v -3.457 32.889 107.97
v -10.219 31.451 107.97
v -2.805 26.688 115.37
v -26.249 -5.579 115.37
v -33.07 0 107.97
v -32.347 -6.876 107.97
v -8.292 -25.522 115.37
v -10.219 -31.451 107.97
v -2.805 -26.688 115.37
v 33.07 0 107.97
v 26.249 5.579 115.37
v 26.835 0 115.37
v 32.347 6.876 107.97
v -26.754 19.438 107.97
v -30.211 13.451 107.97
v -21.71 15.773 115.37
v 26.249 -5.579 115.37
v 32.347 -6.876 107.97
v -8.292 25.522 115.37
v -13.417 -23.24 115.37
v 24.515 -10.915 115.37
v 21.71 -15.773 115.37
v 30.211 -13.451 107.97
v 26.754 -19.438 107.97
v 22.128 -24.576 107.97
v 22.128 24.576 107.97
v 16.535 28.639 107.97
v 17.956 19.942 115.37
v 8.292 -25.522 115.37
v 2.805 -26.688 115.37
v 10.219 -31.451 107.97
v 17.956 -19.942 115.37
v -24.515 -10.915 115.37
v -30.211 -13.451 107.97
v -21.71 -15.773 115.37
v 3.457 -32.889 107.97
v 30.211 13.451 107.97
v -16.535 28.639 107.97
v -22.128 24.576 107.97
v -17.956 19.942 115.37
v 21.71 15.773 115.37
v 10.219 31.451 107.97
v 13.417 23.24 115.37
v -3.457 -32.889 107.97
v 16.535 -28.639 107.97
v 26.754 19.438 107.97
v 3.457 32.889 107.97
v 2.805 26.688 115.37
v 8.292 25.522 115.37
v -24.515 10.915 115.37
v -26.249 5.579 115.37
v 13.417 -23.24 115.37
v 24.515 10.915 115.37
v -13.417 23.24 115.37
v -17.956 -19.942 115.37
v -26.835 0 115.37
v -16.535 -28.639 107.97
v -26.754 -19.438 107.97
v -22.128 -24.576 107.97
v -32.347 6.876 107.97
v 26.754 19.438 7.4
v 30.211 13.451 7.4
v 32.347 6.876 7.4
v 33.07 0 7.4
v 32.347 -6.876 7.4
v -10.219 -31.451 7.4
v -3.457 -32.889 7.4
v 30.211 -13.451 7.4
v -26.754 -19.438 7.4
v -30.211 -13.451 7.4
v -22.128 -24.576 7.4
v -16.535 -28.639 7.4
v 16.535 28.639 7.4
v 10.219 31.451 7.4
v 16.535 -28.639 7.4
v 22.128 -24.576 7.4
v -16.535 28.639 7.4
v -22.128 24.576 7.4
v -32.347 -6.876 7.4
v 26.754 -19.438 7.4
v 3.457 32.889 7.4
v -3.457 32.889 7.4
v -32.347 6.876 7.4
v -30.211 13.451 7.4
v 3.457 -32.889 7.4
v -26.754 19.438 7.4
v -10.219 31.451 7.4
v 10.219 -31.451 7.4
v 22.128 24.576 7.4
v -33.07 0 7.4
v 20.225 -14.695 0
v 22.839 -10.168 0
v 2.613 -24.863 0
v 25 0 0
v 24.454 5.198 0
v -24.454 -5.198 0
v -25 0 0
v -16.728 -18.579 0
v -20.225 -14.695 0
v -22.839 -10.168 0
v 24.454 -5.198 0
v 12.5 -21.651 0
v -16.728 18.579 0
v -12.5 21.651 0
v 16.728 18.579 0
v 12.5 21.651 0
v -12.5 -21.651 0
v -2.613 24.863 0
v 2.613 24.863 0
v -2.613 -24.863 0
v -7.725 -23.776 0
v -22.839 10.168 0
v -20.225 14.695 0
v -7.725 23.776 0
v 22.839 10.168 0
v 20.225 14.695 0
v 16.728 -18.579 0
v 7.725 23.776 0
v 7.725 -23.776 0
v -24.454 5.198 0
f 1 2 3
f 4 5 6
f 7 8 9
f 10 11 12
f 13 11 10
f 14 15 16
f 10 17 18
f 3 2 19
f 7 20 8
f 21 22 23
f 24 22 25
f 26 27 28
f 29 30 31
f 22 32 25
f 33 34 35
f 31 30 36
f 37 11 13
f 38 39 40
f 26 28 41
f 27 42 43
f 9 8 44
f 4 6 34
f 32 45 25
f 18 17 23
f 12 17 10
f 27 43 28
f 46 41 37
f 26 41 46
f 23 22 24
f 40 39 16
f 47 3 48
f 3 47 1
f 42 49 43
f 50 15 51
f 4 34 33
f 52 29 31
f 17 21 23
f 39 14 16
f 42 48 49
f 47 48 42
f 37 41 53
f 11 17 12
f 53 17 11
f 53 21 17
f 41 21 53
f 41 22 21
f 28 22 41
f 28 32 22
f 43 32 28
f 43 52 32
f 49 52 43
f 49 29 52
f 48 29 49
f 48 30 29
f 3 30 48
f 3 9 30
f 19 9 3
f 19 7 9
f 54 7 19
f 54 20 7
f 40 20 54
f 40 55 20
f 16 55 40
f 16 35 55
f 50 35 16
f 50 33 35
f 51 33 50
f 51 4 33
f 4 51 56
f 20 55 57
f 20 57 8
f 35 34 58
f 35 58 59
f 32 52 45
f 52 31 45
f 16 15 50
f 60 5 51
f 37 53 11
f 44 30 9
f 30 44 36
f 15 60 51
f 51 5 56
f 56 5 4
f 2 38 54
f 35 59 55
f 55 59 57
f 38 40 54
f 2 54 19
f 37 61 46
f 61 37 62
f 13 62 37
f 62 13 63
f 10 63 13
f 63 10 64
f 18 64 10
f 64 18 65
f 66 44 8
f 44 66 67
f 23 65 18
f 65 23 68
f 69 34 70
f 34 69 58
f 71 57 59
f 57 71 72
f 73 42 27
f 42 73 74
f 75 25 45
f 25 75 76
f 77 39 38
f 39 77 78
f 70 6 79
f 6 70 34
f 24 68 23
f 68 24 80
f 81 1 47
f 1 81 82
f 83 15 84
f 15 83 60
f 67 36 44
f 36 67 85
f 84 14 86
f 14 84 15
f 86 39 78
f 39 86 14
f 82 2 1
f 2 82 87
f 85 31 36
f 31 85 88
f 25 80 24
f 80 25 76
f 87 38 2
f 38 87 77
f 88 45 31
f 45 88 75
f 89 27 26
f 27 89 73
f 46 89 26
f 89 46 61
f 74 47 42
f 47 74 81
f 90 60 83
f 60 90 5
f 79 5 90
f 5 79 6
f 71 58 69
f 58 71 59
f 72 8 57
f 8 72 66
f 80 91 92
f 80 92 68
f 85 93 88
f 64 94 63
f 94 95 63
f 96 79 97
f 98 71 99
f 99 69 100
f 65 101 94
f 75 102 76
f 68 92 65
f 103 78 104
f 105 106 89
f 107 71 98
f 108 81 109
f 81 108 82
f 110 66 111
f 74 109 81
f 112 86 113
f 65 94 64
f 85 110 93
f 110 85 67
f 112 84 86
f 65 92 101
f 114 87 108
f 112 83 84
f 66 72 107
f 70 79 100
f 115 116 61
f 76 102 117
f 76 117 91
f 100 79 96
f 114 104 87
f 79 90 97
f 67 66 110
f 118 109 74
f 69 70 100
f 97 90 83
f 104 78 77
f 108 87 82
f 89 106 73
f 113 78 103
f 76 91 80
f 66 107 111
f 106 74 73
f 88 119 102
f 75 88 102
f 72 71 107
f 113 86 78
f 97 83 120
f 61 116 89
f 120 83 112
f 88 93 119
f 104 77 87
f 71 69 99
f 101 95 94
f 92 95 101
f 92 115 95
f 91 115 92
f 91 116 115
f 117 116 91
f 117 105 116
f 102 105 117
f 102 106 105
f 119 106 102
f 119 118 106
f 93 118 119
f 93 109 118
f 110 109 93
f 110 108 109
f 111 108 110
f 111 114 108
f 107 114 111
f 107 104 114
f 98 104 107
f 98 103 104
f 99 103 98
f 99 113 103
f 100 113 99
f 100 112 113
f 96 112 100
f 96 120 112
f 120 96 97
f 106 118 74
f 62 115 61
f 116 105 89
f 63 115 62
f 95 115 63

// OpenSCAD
//Can dimensions
radius = 66.14/2;
top_radius = 53.67/2;
top_rise = 14.57;
bottom_radius = 50/2;
bottom_rise = 7.4;
height = 122.54;

module can(height, radius, top_rise, top_radius, bottom_rise, bottom_radius){
    //Getting measurements correct
    adjusted_height = height - top_rise - bottom_rise;
    adjusted_top_height = adjusted_height + bottom_rise;
    
    //Making the can
    //Top
    translate([0, 0, adjusted_top_height]){
        cylinder(bottom_rise, radius, top_radius);
    }
    //Main body
    translate([0, 0, bottom_rise]){
	    cylinder(adjusted_height, radius, radius);
    }
    //Bottom of can
    cylinder(bottom_rise, bottom_radius, radius);
}
can(height, radius, top_rise, top_radius, bottom_rise, bottom_radius);
